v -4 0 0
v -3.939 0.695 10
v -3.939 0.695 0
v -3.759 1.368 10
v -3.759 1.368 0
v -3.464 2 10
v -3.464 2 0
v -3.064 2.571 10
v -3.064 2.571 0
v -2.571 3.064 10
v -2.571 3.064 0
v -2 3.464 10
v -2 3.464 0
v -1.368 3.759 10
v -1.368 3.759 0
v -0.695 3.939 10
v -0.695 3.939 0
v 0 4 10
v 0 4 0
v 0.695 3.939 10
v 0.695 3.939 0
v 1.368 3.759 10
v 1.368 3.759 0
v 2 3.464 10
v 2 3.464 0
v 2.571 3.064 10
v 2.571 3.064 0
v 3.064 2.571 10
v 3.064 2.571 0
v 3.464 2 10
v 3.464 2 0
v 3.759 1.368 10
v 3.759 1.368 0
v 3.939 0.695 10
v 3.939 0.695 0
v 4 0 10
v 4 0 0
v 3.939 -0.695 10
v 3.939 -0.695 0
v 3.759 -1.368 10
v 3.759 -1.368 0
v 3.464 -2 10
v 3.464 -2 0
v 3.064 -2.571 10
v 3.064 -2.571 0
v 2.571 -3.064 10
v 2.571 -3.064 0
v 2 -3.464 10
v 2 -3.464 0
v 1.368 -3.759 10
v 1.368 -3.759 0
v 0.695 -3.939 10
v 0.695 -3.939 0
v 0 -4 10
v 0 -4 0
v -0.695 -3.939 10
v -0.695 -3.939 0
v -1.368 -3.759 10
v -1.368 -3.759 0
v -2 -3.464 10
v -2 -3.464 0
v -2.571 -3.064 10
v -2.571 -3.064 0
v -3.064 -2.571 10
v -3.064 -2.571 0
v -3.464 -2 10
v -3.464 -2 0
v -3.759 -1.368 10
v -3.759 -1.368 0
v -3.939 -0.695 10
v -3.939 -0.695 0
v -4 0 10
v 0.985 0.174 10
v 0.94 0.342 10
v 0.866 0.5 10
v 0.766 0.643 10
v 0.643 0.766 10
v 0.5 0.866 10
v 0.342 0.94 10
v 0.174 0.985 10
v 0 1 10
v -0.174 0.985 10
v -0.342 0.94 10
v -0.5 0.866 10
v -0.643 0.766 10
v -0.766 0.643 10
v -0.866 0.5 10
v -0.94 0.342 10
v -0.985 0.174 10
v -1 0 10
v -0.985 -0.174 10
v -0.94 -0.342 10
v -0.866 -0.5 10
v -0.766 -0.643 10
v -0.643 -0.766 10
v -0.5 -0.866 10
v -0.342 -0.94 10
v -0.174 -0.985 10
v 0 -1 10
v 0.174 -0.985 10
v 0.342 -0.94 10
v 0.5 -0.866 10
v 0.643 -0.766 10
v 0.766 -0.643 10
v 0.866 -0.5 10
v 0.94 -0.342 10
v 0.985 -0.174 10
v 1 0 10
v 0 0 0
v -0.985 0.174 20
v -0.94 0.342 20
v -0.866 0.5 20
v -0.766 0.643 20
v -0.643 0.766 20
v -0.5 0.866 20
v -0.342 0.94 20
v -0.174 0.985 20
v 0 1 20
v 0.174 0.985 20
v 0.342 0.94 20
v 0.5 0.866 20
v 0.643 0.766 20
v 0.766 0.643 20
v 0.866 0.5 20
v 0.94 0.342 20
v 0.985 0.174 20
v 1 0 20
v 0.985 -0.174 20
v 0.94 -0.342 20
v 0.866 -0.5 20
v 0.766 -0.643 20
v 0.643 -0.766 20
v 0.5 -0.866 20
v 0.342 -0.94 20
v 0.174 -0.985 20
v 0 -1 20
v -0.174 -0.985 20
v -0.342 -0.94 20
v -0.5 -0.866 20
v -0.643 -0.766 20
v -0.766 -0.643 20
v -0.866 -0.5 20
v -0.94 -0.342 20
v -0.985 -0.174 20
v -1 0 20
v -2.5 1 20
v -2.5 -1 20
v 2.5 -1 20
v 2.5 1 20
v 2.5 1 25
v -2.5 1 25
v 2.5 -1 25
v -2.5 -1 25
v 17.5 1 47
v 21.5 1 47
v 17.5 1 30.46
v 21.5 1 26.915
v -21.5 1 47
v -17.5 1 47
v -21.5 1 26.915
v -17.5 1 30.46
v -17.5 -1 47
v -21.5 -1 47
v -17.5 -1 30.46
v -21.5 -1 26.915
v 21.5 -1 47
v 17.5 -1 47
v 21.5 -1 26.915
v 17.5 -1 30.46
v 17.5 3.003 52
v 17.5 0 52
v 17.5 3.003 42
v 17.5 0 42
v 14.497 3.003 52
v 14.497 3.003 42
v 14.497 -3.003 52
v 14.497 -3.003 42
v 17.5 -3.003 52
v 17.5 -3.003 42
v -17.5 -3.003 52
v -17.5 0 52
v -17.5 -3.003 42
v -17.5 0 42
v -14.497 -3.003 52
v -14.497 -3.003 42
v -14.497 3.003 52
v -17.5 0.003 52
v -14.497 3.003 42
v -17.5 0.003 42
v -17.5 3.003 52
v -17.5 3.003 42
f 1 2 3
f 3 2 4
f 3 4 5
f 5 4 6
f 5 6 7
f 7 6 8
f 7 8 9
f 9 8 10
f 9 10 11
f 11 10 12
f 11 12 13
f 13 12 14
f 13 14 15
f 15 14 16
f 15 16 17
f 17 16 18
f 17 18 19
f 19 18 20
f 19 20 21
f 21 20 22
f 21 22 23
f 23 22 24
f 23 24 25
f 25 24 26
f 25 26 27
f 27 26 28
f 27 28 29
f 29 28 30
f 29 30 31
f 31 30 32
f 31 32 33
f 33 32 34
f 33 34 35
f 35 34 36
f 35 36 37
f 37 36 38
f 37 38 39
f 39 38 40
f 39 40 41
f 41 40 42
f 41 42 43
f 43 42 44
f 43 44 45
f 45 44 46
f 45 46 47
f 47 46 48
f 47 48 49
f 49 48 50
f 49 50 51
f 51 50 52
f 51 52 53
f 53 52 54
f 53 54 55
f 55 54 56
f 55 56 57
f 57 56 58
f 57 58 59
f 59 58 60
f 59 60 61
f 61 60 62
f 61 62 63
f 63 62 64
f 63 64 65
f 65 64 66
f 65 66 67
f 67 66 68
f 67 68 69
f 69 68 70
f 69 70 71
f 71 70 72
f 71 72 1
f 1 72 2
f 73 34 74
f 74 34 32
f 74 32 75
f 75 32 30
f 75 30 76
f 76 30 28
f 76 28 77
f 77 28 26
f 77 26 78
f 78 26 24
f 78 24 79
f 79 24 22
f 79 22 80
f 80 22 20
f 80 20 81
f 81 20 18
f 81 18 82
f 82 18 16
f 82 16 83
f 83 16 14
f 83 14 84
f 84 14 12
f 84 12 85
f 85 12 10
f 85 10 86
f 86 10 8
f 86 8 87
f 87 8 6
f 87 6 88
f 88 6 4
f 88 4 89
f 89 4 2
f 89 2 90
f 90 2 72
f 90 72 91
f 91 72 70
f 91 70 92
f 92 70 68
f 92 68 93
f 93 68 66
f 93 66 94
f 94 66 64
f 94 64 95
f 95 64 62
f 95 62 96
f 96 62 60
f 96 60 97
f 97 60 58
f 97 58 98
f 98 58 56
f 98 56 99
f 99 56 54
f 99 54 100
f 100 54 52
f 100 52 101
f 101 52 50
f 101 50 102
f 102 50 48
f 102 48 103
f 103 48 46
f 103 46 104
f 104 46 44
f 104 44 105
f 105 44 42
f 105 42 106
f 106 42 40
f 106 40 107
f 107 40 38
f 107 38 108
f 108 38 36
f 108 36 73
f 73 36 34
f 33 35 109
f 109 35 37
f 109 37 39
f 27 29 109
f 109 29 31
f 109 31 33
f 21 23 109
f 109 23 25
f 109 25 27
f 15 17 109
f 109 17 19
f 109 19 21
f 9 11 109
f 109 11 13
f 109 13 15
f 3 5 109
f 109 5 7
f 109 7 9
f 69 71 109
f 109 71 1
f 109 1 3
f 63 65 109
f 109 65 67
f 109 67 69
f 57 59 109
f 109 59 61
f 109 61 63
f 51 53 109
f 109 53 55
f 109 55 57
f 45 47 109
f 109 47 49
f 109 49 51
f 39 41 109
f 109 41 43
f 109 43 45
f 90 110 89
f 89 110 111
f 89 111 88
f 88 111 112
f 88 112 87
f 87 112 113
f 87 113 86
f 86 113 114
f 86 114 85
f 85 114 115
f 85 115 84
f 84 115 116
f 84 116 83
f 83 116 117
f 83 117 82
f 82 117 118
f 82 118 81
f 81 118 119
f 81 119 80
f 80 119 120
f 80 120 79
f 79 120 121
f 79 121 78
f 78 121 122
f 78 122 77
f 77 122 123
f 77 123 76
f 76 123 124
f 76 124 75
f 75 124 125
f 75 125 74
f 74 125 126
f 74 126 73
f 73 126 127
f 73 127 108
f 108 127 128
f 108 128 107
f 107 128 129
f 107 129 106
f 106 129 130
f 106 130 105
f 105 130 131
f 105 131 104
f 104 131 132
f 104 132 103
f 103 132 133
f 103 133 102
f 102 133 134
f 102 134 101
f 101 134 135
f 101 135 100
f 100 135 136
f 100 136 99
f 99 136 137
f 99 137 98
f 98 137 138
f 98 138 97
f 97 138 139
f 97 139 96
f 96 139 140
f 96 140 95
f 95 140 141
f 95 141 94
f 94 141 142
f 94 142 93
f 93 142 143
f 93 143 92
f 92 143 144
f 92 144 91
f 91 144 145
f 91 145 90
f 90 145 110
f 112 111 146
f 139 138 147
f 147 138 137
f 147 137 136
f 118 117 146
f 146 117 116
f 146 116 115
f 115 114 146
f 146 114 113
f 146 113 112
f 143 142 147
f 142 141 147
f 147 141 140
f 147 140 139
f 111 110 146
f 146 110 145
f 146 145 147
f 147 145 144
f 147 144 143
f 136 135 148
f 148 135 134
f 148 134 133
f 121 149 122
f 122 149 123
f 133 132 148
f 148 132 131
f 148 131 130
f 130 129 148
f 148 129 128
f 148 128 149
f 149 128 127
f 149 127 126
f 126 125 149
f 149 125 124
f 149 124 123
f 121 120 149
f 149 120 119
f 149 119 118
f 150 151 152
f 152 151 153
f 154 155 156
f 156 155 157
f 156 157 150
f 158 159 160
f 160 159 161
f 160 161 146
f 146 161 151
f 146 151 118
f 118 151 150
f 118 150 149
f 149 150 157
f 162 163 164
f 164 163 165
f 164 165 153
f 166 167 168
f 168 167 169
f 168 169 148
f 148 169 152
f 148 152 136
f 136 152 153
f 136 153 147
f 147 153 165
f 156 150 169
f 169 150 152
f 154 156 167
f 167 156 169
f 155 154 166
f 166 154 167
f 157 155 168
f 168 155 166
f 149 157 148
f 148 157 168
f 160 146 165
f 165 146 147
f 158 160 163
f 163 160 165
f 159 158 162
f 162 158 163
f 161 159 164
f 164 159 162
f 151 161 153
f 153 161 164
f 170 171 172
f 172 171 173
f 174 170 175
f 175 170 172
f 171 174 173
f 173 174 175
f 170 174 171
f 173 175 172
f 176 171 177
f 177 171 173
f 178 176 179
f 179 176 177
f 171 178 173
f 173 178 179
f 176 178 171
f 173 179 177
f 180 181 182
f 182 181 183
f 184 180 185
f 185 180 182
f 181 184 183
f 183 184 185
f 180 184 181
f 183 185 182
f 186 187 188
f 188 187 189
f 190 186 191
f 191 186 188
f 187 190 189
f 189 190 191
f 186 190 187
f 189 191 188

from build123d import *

# Parameters (mm, degrees)
SKETCH1_R             = 4
BOSS_EXTRUDE1_DEPTH   = 10
SKETCH2_R             = 1
BOSS_EXTRUDE2_DEPTH   = 10
SKETCH3_W             = 5
SKETCH3_H             = 5
BOSS_EXTRUDE3_DEPTH   = 1
BOSS_EXTRUDE4_DEPTH   = 1
BOSS_EXTRUDE7_DEPTH   = 5
BOSS_EXTRUDE7_2_DEPTH = 5
BOSS_EXTRUDE7_3_DEPTH = 5
BOSS_EXTRUDE7_4_DEPTH = 5


with BuildPart() as part:
    # Sketch1 → Boss-Extrude1 (new body)
    with BuildSketch(Plane.XY):
        Circle(SKETCH1_R)
    extrude(amount=BOSS_EXTRUDE1_DEPTH)

    # Sketch2 → Boss-Extrude2 (add)
    with BuildSketch(Plane.XY.offset(10)):
        Circle(SKETCH2_R)
    extrude(amount=BOSS_EXTRUDE2_DEPTH)

    # Sketch3 → Boss-Extrude3 (add, symmetric)
    with BuildSketch(Plane(origin=(0, 0, 0), x_dir=(1, 0, 0), z_dir=(0, 1, 0))):
        with Locations((0, -22.5)):
            Rectangle(SKETCH3_W, SKETCH3_H)
    extrude(amount=BOSS_EXTRUDE3_DEPTH, both=True)

    # Sketch5 → Boss-Extrude4 (add, symmetric)
    with BuildSketch(Plane(origin=(0, 0, 0), x_dir=(1, 0, 0), z_dir=(0, 1, 0))):
        Polygon((2.5, -20), (21.5, -26.915434451), (21.5, -47), (17.5, -47), (17.5, -30.459553514), (2.5, -25), align=None)
    boss_extrude4 = extrude(amount=BOSS_EXTRUDE4_DEPTH, both=True)

    # Mirror1: Boss-Extrude4 across plane
    add(boss_extrude4.mirror(Plane(origin=(0, 0, 0), x_dir=(0, 0, 1), z_dir=(1, 0, 0))))


with BuildPart() as body_2:
    # Sketch6 → Boss-Extrude7 (new body, symmetric)
    with BuildSketch(Plane.XY.offset(47)):
        Polygon((17.5, 0), (14.497168083, -3.002831917), (17.5, -3.002831917), align=None)
    extrude(amount=BOSS_EXTRUDE7_DEPTH, both=True)


with BuildPart() as body_3:
    # Sketch6 → Boss-Extrude7 2 (new body, symmetric)
    with BuildSketch(Plane.XY.offset(47)):
        Polygon((17.5, 0), (17.5, 3.002831917), (14.497168083, 3.002831917), align=None)
    extrude(amount=BOSS_EXTRUDE7_2_DEPTH, both=True)


with BuildPart() as body_4:
    # Sketch6 → Boss-Extrude7 3 (new body, symmetric)
    with BuildSketch(Plane.XY.offset(47)):
        Polygon((-17.5, 3.002831917), (-17.5, 0.002831917), (-14.497168083, 3.002831917), align=None)
    extrude(amount=BOSS_EXTRUDE7_3_DEPTH, both=True)


with BuildPart() as body_5:
    # Sketch6 → Boss-Extrude7 4 (new body, symmetric)
    with BuildSketch(Plane.XY.offset(47)):
        Polygon((-14.497168083, -3.002831917), (-17.5, 0), (-17.5, -3.002831917), align=None)
    extrude(amount=BOSS_EXTRUDE7_4_DEPTH, both=True)


solid = Compound([part.part, body_2.part, body_3.part, body_4.part, body_5.part])
